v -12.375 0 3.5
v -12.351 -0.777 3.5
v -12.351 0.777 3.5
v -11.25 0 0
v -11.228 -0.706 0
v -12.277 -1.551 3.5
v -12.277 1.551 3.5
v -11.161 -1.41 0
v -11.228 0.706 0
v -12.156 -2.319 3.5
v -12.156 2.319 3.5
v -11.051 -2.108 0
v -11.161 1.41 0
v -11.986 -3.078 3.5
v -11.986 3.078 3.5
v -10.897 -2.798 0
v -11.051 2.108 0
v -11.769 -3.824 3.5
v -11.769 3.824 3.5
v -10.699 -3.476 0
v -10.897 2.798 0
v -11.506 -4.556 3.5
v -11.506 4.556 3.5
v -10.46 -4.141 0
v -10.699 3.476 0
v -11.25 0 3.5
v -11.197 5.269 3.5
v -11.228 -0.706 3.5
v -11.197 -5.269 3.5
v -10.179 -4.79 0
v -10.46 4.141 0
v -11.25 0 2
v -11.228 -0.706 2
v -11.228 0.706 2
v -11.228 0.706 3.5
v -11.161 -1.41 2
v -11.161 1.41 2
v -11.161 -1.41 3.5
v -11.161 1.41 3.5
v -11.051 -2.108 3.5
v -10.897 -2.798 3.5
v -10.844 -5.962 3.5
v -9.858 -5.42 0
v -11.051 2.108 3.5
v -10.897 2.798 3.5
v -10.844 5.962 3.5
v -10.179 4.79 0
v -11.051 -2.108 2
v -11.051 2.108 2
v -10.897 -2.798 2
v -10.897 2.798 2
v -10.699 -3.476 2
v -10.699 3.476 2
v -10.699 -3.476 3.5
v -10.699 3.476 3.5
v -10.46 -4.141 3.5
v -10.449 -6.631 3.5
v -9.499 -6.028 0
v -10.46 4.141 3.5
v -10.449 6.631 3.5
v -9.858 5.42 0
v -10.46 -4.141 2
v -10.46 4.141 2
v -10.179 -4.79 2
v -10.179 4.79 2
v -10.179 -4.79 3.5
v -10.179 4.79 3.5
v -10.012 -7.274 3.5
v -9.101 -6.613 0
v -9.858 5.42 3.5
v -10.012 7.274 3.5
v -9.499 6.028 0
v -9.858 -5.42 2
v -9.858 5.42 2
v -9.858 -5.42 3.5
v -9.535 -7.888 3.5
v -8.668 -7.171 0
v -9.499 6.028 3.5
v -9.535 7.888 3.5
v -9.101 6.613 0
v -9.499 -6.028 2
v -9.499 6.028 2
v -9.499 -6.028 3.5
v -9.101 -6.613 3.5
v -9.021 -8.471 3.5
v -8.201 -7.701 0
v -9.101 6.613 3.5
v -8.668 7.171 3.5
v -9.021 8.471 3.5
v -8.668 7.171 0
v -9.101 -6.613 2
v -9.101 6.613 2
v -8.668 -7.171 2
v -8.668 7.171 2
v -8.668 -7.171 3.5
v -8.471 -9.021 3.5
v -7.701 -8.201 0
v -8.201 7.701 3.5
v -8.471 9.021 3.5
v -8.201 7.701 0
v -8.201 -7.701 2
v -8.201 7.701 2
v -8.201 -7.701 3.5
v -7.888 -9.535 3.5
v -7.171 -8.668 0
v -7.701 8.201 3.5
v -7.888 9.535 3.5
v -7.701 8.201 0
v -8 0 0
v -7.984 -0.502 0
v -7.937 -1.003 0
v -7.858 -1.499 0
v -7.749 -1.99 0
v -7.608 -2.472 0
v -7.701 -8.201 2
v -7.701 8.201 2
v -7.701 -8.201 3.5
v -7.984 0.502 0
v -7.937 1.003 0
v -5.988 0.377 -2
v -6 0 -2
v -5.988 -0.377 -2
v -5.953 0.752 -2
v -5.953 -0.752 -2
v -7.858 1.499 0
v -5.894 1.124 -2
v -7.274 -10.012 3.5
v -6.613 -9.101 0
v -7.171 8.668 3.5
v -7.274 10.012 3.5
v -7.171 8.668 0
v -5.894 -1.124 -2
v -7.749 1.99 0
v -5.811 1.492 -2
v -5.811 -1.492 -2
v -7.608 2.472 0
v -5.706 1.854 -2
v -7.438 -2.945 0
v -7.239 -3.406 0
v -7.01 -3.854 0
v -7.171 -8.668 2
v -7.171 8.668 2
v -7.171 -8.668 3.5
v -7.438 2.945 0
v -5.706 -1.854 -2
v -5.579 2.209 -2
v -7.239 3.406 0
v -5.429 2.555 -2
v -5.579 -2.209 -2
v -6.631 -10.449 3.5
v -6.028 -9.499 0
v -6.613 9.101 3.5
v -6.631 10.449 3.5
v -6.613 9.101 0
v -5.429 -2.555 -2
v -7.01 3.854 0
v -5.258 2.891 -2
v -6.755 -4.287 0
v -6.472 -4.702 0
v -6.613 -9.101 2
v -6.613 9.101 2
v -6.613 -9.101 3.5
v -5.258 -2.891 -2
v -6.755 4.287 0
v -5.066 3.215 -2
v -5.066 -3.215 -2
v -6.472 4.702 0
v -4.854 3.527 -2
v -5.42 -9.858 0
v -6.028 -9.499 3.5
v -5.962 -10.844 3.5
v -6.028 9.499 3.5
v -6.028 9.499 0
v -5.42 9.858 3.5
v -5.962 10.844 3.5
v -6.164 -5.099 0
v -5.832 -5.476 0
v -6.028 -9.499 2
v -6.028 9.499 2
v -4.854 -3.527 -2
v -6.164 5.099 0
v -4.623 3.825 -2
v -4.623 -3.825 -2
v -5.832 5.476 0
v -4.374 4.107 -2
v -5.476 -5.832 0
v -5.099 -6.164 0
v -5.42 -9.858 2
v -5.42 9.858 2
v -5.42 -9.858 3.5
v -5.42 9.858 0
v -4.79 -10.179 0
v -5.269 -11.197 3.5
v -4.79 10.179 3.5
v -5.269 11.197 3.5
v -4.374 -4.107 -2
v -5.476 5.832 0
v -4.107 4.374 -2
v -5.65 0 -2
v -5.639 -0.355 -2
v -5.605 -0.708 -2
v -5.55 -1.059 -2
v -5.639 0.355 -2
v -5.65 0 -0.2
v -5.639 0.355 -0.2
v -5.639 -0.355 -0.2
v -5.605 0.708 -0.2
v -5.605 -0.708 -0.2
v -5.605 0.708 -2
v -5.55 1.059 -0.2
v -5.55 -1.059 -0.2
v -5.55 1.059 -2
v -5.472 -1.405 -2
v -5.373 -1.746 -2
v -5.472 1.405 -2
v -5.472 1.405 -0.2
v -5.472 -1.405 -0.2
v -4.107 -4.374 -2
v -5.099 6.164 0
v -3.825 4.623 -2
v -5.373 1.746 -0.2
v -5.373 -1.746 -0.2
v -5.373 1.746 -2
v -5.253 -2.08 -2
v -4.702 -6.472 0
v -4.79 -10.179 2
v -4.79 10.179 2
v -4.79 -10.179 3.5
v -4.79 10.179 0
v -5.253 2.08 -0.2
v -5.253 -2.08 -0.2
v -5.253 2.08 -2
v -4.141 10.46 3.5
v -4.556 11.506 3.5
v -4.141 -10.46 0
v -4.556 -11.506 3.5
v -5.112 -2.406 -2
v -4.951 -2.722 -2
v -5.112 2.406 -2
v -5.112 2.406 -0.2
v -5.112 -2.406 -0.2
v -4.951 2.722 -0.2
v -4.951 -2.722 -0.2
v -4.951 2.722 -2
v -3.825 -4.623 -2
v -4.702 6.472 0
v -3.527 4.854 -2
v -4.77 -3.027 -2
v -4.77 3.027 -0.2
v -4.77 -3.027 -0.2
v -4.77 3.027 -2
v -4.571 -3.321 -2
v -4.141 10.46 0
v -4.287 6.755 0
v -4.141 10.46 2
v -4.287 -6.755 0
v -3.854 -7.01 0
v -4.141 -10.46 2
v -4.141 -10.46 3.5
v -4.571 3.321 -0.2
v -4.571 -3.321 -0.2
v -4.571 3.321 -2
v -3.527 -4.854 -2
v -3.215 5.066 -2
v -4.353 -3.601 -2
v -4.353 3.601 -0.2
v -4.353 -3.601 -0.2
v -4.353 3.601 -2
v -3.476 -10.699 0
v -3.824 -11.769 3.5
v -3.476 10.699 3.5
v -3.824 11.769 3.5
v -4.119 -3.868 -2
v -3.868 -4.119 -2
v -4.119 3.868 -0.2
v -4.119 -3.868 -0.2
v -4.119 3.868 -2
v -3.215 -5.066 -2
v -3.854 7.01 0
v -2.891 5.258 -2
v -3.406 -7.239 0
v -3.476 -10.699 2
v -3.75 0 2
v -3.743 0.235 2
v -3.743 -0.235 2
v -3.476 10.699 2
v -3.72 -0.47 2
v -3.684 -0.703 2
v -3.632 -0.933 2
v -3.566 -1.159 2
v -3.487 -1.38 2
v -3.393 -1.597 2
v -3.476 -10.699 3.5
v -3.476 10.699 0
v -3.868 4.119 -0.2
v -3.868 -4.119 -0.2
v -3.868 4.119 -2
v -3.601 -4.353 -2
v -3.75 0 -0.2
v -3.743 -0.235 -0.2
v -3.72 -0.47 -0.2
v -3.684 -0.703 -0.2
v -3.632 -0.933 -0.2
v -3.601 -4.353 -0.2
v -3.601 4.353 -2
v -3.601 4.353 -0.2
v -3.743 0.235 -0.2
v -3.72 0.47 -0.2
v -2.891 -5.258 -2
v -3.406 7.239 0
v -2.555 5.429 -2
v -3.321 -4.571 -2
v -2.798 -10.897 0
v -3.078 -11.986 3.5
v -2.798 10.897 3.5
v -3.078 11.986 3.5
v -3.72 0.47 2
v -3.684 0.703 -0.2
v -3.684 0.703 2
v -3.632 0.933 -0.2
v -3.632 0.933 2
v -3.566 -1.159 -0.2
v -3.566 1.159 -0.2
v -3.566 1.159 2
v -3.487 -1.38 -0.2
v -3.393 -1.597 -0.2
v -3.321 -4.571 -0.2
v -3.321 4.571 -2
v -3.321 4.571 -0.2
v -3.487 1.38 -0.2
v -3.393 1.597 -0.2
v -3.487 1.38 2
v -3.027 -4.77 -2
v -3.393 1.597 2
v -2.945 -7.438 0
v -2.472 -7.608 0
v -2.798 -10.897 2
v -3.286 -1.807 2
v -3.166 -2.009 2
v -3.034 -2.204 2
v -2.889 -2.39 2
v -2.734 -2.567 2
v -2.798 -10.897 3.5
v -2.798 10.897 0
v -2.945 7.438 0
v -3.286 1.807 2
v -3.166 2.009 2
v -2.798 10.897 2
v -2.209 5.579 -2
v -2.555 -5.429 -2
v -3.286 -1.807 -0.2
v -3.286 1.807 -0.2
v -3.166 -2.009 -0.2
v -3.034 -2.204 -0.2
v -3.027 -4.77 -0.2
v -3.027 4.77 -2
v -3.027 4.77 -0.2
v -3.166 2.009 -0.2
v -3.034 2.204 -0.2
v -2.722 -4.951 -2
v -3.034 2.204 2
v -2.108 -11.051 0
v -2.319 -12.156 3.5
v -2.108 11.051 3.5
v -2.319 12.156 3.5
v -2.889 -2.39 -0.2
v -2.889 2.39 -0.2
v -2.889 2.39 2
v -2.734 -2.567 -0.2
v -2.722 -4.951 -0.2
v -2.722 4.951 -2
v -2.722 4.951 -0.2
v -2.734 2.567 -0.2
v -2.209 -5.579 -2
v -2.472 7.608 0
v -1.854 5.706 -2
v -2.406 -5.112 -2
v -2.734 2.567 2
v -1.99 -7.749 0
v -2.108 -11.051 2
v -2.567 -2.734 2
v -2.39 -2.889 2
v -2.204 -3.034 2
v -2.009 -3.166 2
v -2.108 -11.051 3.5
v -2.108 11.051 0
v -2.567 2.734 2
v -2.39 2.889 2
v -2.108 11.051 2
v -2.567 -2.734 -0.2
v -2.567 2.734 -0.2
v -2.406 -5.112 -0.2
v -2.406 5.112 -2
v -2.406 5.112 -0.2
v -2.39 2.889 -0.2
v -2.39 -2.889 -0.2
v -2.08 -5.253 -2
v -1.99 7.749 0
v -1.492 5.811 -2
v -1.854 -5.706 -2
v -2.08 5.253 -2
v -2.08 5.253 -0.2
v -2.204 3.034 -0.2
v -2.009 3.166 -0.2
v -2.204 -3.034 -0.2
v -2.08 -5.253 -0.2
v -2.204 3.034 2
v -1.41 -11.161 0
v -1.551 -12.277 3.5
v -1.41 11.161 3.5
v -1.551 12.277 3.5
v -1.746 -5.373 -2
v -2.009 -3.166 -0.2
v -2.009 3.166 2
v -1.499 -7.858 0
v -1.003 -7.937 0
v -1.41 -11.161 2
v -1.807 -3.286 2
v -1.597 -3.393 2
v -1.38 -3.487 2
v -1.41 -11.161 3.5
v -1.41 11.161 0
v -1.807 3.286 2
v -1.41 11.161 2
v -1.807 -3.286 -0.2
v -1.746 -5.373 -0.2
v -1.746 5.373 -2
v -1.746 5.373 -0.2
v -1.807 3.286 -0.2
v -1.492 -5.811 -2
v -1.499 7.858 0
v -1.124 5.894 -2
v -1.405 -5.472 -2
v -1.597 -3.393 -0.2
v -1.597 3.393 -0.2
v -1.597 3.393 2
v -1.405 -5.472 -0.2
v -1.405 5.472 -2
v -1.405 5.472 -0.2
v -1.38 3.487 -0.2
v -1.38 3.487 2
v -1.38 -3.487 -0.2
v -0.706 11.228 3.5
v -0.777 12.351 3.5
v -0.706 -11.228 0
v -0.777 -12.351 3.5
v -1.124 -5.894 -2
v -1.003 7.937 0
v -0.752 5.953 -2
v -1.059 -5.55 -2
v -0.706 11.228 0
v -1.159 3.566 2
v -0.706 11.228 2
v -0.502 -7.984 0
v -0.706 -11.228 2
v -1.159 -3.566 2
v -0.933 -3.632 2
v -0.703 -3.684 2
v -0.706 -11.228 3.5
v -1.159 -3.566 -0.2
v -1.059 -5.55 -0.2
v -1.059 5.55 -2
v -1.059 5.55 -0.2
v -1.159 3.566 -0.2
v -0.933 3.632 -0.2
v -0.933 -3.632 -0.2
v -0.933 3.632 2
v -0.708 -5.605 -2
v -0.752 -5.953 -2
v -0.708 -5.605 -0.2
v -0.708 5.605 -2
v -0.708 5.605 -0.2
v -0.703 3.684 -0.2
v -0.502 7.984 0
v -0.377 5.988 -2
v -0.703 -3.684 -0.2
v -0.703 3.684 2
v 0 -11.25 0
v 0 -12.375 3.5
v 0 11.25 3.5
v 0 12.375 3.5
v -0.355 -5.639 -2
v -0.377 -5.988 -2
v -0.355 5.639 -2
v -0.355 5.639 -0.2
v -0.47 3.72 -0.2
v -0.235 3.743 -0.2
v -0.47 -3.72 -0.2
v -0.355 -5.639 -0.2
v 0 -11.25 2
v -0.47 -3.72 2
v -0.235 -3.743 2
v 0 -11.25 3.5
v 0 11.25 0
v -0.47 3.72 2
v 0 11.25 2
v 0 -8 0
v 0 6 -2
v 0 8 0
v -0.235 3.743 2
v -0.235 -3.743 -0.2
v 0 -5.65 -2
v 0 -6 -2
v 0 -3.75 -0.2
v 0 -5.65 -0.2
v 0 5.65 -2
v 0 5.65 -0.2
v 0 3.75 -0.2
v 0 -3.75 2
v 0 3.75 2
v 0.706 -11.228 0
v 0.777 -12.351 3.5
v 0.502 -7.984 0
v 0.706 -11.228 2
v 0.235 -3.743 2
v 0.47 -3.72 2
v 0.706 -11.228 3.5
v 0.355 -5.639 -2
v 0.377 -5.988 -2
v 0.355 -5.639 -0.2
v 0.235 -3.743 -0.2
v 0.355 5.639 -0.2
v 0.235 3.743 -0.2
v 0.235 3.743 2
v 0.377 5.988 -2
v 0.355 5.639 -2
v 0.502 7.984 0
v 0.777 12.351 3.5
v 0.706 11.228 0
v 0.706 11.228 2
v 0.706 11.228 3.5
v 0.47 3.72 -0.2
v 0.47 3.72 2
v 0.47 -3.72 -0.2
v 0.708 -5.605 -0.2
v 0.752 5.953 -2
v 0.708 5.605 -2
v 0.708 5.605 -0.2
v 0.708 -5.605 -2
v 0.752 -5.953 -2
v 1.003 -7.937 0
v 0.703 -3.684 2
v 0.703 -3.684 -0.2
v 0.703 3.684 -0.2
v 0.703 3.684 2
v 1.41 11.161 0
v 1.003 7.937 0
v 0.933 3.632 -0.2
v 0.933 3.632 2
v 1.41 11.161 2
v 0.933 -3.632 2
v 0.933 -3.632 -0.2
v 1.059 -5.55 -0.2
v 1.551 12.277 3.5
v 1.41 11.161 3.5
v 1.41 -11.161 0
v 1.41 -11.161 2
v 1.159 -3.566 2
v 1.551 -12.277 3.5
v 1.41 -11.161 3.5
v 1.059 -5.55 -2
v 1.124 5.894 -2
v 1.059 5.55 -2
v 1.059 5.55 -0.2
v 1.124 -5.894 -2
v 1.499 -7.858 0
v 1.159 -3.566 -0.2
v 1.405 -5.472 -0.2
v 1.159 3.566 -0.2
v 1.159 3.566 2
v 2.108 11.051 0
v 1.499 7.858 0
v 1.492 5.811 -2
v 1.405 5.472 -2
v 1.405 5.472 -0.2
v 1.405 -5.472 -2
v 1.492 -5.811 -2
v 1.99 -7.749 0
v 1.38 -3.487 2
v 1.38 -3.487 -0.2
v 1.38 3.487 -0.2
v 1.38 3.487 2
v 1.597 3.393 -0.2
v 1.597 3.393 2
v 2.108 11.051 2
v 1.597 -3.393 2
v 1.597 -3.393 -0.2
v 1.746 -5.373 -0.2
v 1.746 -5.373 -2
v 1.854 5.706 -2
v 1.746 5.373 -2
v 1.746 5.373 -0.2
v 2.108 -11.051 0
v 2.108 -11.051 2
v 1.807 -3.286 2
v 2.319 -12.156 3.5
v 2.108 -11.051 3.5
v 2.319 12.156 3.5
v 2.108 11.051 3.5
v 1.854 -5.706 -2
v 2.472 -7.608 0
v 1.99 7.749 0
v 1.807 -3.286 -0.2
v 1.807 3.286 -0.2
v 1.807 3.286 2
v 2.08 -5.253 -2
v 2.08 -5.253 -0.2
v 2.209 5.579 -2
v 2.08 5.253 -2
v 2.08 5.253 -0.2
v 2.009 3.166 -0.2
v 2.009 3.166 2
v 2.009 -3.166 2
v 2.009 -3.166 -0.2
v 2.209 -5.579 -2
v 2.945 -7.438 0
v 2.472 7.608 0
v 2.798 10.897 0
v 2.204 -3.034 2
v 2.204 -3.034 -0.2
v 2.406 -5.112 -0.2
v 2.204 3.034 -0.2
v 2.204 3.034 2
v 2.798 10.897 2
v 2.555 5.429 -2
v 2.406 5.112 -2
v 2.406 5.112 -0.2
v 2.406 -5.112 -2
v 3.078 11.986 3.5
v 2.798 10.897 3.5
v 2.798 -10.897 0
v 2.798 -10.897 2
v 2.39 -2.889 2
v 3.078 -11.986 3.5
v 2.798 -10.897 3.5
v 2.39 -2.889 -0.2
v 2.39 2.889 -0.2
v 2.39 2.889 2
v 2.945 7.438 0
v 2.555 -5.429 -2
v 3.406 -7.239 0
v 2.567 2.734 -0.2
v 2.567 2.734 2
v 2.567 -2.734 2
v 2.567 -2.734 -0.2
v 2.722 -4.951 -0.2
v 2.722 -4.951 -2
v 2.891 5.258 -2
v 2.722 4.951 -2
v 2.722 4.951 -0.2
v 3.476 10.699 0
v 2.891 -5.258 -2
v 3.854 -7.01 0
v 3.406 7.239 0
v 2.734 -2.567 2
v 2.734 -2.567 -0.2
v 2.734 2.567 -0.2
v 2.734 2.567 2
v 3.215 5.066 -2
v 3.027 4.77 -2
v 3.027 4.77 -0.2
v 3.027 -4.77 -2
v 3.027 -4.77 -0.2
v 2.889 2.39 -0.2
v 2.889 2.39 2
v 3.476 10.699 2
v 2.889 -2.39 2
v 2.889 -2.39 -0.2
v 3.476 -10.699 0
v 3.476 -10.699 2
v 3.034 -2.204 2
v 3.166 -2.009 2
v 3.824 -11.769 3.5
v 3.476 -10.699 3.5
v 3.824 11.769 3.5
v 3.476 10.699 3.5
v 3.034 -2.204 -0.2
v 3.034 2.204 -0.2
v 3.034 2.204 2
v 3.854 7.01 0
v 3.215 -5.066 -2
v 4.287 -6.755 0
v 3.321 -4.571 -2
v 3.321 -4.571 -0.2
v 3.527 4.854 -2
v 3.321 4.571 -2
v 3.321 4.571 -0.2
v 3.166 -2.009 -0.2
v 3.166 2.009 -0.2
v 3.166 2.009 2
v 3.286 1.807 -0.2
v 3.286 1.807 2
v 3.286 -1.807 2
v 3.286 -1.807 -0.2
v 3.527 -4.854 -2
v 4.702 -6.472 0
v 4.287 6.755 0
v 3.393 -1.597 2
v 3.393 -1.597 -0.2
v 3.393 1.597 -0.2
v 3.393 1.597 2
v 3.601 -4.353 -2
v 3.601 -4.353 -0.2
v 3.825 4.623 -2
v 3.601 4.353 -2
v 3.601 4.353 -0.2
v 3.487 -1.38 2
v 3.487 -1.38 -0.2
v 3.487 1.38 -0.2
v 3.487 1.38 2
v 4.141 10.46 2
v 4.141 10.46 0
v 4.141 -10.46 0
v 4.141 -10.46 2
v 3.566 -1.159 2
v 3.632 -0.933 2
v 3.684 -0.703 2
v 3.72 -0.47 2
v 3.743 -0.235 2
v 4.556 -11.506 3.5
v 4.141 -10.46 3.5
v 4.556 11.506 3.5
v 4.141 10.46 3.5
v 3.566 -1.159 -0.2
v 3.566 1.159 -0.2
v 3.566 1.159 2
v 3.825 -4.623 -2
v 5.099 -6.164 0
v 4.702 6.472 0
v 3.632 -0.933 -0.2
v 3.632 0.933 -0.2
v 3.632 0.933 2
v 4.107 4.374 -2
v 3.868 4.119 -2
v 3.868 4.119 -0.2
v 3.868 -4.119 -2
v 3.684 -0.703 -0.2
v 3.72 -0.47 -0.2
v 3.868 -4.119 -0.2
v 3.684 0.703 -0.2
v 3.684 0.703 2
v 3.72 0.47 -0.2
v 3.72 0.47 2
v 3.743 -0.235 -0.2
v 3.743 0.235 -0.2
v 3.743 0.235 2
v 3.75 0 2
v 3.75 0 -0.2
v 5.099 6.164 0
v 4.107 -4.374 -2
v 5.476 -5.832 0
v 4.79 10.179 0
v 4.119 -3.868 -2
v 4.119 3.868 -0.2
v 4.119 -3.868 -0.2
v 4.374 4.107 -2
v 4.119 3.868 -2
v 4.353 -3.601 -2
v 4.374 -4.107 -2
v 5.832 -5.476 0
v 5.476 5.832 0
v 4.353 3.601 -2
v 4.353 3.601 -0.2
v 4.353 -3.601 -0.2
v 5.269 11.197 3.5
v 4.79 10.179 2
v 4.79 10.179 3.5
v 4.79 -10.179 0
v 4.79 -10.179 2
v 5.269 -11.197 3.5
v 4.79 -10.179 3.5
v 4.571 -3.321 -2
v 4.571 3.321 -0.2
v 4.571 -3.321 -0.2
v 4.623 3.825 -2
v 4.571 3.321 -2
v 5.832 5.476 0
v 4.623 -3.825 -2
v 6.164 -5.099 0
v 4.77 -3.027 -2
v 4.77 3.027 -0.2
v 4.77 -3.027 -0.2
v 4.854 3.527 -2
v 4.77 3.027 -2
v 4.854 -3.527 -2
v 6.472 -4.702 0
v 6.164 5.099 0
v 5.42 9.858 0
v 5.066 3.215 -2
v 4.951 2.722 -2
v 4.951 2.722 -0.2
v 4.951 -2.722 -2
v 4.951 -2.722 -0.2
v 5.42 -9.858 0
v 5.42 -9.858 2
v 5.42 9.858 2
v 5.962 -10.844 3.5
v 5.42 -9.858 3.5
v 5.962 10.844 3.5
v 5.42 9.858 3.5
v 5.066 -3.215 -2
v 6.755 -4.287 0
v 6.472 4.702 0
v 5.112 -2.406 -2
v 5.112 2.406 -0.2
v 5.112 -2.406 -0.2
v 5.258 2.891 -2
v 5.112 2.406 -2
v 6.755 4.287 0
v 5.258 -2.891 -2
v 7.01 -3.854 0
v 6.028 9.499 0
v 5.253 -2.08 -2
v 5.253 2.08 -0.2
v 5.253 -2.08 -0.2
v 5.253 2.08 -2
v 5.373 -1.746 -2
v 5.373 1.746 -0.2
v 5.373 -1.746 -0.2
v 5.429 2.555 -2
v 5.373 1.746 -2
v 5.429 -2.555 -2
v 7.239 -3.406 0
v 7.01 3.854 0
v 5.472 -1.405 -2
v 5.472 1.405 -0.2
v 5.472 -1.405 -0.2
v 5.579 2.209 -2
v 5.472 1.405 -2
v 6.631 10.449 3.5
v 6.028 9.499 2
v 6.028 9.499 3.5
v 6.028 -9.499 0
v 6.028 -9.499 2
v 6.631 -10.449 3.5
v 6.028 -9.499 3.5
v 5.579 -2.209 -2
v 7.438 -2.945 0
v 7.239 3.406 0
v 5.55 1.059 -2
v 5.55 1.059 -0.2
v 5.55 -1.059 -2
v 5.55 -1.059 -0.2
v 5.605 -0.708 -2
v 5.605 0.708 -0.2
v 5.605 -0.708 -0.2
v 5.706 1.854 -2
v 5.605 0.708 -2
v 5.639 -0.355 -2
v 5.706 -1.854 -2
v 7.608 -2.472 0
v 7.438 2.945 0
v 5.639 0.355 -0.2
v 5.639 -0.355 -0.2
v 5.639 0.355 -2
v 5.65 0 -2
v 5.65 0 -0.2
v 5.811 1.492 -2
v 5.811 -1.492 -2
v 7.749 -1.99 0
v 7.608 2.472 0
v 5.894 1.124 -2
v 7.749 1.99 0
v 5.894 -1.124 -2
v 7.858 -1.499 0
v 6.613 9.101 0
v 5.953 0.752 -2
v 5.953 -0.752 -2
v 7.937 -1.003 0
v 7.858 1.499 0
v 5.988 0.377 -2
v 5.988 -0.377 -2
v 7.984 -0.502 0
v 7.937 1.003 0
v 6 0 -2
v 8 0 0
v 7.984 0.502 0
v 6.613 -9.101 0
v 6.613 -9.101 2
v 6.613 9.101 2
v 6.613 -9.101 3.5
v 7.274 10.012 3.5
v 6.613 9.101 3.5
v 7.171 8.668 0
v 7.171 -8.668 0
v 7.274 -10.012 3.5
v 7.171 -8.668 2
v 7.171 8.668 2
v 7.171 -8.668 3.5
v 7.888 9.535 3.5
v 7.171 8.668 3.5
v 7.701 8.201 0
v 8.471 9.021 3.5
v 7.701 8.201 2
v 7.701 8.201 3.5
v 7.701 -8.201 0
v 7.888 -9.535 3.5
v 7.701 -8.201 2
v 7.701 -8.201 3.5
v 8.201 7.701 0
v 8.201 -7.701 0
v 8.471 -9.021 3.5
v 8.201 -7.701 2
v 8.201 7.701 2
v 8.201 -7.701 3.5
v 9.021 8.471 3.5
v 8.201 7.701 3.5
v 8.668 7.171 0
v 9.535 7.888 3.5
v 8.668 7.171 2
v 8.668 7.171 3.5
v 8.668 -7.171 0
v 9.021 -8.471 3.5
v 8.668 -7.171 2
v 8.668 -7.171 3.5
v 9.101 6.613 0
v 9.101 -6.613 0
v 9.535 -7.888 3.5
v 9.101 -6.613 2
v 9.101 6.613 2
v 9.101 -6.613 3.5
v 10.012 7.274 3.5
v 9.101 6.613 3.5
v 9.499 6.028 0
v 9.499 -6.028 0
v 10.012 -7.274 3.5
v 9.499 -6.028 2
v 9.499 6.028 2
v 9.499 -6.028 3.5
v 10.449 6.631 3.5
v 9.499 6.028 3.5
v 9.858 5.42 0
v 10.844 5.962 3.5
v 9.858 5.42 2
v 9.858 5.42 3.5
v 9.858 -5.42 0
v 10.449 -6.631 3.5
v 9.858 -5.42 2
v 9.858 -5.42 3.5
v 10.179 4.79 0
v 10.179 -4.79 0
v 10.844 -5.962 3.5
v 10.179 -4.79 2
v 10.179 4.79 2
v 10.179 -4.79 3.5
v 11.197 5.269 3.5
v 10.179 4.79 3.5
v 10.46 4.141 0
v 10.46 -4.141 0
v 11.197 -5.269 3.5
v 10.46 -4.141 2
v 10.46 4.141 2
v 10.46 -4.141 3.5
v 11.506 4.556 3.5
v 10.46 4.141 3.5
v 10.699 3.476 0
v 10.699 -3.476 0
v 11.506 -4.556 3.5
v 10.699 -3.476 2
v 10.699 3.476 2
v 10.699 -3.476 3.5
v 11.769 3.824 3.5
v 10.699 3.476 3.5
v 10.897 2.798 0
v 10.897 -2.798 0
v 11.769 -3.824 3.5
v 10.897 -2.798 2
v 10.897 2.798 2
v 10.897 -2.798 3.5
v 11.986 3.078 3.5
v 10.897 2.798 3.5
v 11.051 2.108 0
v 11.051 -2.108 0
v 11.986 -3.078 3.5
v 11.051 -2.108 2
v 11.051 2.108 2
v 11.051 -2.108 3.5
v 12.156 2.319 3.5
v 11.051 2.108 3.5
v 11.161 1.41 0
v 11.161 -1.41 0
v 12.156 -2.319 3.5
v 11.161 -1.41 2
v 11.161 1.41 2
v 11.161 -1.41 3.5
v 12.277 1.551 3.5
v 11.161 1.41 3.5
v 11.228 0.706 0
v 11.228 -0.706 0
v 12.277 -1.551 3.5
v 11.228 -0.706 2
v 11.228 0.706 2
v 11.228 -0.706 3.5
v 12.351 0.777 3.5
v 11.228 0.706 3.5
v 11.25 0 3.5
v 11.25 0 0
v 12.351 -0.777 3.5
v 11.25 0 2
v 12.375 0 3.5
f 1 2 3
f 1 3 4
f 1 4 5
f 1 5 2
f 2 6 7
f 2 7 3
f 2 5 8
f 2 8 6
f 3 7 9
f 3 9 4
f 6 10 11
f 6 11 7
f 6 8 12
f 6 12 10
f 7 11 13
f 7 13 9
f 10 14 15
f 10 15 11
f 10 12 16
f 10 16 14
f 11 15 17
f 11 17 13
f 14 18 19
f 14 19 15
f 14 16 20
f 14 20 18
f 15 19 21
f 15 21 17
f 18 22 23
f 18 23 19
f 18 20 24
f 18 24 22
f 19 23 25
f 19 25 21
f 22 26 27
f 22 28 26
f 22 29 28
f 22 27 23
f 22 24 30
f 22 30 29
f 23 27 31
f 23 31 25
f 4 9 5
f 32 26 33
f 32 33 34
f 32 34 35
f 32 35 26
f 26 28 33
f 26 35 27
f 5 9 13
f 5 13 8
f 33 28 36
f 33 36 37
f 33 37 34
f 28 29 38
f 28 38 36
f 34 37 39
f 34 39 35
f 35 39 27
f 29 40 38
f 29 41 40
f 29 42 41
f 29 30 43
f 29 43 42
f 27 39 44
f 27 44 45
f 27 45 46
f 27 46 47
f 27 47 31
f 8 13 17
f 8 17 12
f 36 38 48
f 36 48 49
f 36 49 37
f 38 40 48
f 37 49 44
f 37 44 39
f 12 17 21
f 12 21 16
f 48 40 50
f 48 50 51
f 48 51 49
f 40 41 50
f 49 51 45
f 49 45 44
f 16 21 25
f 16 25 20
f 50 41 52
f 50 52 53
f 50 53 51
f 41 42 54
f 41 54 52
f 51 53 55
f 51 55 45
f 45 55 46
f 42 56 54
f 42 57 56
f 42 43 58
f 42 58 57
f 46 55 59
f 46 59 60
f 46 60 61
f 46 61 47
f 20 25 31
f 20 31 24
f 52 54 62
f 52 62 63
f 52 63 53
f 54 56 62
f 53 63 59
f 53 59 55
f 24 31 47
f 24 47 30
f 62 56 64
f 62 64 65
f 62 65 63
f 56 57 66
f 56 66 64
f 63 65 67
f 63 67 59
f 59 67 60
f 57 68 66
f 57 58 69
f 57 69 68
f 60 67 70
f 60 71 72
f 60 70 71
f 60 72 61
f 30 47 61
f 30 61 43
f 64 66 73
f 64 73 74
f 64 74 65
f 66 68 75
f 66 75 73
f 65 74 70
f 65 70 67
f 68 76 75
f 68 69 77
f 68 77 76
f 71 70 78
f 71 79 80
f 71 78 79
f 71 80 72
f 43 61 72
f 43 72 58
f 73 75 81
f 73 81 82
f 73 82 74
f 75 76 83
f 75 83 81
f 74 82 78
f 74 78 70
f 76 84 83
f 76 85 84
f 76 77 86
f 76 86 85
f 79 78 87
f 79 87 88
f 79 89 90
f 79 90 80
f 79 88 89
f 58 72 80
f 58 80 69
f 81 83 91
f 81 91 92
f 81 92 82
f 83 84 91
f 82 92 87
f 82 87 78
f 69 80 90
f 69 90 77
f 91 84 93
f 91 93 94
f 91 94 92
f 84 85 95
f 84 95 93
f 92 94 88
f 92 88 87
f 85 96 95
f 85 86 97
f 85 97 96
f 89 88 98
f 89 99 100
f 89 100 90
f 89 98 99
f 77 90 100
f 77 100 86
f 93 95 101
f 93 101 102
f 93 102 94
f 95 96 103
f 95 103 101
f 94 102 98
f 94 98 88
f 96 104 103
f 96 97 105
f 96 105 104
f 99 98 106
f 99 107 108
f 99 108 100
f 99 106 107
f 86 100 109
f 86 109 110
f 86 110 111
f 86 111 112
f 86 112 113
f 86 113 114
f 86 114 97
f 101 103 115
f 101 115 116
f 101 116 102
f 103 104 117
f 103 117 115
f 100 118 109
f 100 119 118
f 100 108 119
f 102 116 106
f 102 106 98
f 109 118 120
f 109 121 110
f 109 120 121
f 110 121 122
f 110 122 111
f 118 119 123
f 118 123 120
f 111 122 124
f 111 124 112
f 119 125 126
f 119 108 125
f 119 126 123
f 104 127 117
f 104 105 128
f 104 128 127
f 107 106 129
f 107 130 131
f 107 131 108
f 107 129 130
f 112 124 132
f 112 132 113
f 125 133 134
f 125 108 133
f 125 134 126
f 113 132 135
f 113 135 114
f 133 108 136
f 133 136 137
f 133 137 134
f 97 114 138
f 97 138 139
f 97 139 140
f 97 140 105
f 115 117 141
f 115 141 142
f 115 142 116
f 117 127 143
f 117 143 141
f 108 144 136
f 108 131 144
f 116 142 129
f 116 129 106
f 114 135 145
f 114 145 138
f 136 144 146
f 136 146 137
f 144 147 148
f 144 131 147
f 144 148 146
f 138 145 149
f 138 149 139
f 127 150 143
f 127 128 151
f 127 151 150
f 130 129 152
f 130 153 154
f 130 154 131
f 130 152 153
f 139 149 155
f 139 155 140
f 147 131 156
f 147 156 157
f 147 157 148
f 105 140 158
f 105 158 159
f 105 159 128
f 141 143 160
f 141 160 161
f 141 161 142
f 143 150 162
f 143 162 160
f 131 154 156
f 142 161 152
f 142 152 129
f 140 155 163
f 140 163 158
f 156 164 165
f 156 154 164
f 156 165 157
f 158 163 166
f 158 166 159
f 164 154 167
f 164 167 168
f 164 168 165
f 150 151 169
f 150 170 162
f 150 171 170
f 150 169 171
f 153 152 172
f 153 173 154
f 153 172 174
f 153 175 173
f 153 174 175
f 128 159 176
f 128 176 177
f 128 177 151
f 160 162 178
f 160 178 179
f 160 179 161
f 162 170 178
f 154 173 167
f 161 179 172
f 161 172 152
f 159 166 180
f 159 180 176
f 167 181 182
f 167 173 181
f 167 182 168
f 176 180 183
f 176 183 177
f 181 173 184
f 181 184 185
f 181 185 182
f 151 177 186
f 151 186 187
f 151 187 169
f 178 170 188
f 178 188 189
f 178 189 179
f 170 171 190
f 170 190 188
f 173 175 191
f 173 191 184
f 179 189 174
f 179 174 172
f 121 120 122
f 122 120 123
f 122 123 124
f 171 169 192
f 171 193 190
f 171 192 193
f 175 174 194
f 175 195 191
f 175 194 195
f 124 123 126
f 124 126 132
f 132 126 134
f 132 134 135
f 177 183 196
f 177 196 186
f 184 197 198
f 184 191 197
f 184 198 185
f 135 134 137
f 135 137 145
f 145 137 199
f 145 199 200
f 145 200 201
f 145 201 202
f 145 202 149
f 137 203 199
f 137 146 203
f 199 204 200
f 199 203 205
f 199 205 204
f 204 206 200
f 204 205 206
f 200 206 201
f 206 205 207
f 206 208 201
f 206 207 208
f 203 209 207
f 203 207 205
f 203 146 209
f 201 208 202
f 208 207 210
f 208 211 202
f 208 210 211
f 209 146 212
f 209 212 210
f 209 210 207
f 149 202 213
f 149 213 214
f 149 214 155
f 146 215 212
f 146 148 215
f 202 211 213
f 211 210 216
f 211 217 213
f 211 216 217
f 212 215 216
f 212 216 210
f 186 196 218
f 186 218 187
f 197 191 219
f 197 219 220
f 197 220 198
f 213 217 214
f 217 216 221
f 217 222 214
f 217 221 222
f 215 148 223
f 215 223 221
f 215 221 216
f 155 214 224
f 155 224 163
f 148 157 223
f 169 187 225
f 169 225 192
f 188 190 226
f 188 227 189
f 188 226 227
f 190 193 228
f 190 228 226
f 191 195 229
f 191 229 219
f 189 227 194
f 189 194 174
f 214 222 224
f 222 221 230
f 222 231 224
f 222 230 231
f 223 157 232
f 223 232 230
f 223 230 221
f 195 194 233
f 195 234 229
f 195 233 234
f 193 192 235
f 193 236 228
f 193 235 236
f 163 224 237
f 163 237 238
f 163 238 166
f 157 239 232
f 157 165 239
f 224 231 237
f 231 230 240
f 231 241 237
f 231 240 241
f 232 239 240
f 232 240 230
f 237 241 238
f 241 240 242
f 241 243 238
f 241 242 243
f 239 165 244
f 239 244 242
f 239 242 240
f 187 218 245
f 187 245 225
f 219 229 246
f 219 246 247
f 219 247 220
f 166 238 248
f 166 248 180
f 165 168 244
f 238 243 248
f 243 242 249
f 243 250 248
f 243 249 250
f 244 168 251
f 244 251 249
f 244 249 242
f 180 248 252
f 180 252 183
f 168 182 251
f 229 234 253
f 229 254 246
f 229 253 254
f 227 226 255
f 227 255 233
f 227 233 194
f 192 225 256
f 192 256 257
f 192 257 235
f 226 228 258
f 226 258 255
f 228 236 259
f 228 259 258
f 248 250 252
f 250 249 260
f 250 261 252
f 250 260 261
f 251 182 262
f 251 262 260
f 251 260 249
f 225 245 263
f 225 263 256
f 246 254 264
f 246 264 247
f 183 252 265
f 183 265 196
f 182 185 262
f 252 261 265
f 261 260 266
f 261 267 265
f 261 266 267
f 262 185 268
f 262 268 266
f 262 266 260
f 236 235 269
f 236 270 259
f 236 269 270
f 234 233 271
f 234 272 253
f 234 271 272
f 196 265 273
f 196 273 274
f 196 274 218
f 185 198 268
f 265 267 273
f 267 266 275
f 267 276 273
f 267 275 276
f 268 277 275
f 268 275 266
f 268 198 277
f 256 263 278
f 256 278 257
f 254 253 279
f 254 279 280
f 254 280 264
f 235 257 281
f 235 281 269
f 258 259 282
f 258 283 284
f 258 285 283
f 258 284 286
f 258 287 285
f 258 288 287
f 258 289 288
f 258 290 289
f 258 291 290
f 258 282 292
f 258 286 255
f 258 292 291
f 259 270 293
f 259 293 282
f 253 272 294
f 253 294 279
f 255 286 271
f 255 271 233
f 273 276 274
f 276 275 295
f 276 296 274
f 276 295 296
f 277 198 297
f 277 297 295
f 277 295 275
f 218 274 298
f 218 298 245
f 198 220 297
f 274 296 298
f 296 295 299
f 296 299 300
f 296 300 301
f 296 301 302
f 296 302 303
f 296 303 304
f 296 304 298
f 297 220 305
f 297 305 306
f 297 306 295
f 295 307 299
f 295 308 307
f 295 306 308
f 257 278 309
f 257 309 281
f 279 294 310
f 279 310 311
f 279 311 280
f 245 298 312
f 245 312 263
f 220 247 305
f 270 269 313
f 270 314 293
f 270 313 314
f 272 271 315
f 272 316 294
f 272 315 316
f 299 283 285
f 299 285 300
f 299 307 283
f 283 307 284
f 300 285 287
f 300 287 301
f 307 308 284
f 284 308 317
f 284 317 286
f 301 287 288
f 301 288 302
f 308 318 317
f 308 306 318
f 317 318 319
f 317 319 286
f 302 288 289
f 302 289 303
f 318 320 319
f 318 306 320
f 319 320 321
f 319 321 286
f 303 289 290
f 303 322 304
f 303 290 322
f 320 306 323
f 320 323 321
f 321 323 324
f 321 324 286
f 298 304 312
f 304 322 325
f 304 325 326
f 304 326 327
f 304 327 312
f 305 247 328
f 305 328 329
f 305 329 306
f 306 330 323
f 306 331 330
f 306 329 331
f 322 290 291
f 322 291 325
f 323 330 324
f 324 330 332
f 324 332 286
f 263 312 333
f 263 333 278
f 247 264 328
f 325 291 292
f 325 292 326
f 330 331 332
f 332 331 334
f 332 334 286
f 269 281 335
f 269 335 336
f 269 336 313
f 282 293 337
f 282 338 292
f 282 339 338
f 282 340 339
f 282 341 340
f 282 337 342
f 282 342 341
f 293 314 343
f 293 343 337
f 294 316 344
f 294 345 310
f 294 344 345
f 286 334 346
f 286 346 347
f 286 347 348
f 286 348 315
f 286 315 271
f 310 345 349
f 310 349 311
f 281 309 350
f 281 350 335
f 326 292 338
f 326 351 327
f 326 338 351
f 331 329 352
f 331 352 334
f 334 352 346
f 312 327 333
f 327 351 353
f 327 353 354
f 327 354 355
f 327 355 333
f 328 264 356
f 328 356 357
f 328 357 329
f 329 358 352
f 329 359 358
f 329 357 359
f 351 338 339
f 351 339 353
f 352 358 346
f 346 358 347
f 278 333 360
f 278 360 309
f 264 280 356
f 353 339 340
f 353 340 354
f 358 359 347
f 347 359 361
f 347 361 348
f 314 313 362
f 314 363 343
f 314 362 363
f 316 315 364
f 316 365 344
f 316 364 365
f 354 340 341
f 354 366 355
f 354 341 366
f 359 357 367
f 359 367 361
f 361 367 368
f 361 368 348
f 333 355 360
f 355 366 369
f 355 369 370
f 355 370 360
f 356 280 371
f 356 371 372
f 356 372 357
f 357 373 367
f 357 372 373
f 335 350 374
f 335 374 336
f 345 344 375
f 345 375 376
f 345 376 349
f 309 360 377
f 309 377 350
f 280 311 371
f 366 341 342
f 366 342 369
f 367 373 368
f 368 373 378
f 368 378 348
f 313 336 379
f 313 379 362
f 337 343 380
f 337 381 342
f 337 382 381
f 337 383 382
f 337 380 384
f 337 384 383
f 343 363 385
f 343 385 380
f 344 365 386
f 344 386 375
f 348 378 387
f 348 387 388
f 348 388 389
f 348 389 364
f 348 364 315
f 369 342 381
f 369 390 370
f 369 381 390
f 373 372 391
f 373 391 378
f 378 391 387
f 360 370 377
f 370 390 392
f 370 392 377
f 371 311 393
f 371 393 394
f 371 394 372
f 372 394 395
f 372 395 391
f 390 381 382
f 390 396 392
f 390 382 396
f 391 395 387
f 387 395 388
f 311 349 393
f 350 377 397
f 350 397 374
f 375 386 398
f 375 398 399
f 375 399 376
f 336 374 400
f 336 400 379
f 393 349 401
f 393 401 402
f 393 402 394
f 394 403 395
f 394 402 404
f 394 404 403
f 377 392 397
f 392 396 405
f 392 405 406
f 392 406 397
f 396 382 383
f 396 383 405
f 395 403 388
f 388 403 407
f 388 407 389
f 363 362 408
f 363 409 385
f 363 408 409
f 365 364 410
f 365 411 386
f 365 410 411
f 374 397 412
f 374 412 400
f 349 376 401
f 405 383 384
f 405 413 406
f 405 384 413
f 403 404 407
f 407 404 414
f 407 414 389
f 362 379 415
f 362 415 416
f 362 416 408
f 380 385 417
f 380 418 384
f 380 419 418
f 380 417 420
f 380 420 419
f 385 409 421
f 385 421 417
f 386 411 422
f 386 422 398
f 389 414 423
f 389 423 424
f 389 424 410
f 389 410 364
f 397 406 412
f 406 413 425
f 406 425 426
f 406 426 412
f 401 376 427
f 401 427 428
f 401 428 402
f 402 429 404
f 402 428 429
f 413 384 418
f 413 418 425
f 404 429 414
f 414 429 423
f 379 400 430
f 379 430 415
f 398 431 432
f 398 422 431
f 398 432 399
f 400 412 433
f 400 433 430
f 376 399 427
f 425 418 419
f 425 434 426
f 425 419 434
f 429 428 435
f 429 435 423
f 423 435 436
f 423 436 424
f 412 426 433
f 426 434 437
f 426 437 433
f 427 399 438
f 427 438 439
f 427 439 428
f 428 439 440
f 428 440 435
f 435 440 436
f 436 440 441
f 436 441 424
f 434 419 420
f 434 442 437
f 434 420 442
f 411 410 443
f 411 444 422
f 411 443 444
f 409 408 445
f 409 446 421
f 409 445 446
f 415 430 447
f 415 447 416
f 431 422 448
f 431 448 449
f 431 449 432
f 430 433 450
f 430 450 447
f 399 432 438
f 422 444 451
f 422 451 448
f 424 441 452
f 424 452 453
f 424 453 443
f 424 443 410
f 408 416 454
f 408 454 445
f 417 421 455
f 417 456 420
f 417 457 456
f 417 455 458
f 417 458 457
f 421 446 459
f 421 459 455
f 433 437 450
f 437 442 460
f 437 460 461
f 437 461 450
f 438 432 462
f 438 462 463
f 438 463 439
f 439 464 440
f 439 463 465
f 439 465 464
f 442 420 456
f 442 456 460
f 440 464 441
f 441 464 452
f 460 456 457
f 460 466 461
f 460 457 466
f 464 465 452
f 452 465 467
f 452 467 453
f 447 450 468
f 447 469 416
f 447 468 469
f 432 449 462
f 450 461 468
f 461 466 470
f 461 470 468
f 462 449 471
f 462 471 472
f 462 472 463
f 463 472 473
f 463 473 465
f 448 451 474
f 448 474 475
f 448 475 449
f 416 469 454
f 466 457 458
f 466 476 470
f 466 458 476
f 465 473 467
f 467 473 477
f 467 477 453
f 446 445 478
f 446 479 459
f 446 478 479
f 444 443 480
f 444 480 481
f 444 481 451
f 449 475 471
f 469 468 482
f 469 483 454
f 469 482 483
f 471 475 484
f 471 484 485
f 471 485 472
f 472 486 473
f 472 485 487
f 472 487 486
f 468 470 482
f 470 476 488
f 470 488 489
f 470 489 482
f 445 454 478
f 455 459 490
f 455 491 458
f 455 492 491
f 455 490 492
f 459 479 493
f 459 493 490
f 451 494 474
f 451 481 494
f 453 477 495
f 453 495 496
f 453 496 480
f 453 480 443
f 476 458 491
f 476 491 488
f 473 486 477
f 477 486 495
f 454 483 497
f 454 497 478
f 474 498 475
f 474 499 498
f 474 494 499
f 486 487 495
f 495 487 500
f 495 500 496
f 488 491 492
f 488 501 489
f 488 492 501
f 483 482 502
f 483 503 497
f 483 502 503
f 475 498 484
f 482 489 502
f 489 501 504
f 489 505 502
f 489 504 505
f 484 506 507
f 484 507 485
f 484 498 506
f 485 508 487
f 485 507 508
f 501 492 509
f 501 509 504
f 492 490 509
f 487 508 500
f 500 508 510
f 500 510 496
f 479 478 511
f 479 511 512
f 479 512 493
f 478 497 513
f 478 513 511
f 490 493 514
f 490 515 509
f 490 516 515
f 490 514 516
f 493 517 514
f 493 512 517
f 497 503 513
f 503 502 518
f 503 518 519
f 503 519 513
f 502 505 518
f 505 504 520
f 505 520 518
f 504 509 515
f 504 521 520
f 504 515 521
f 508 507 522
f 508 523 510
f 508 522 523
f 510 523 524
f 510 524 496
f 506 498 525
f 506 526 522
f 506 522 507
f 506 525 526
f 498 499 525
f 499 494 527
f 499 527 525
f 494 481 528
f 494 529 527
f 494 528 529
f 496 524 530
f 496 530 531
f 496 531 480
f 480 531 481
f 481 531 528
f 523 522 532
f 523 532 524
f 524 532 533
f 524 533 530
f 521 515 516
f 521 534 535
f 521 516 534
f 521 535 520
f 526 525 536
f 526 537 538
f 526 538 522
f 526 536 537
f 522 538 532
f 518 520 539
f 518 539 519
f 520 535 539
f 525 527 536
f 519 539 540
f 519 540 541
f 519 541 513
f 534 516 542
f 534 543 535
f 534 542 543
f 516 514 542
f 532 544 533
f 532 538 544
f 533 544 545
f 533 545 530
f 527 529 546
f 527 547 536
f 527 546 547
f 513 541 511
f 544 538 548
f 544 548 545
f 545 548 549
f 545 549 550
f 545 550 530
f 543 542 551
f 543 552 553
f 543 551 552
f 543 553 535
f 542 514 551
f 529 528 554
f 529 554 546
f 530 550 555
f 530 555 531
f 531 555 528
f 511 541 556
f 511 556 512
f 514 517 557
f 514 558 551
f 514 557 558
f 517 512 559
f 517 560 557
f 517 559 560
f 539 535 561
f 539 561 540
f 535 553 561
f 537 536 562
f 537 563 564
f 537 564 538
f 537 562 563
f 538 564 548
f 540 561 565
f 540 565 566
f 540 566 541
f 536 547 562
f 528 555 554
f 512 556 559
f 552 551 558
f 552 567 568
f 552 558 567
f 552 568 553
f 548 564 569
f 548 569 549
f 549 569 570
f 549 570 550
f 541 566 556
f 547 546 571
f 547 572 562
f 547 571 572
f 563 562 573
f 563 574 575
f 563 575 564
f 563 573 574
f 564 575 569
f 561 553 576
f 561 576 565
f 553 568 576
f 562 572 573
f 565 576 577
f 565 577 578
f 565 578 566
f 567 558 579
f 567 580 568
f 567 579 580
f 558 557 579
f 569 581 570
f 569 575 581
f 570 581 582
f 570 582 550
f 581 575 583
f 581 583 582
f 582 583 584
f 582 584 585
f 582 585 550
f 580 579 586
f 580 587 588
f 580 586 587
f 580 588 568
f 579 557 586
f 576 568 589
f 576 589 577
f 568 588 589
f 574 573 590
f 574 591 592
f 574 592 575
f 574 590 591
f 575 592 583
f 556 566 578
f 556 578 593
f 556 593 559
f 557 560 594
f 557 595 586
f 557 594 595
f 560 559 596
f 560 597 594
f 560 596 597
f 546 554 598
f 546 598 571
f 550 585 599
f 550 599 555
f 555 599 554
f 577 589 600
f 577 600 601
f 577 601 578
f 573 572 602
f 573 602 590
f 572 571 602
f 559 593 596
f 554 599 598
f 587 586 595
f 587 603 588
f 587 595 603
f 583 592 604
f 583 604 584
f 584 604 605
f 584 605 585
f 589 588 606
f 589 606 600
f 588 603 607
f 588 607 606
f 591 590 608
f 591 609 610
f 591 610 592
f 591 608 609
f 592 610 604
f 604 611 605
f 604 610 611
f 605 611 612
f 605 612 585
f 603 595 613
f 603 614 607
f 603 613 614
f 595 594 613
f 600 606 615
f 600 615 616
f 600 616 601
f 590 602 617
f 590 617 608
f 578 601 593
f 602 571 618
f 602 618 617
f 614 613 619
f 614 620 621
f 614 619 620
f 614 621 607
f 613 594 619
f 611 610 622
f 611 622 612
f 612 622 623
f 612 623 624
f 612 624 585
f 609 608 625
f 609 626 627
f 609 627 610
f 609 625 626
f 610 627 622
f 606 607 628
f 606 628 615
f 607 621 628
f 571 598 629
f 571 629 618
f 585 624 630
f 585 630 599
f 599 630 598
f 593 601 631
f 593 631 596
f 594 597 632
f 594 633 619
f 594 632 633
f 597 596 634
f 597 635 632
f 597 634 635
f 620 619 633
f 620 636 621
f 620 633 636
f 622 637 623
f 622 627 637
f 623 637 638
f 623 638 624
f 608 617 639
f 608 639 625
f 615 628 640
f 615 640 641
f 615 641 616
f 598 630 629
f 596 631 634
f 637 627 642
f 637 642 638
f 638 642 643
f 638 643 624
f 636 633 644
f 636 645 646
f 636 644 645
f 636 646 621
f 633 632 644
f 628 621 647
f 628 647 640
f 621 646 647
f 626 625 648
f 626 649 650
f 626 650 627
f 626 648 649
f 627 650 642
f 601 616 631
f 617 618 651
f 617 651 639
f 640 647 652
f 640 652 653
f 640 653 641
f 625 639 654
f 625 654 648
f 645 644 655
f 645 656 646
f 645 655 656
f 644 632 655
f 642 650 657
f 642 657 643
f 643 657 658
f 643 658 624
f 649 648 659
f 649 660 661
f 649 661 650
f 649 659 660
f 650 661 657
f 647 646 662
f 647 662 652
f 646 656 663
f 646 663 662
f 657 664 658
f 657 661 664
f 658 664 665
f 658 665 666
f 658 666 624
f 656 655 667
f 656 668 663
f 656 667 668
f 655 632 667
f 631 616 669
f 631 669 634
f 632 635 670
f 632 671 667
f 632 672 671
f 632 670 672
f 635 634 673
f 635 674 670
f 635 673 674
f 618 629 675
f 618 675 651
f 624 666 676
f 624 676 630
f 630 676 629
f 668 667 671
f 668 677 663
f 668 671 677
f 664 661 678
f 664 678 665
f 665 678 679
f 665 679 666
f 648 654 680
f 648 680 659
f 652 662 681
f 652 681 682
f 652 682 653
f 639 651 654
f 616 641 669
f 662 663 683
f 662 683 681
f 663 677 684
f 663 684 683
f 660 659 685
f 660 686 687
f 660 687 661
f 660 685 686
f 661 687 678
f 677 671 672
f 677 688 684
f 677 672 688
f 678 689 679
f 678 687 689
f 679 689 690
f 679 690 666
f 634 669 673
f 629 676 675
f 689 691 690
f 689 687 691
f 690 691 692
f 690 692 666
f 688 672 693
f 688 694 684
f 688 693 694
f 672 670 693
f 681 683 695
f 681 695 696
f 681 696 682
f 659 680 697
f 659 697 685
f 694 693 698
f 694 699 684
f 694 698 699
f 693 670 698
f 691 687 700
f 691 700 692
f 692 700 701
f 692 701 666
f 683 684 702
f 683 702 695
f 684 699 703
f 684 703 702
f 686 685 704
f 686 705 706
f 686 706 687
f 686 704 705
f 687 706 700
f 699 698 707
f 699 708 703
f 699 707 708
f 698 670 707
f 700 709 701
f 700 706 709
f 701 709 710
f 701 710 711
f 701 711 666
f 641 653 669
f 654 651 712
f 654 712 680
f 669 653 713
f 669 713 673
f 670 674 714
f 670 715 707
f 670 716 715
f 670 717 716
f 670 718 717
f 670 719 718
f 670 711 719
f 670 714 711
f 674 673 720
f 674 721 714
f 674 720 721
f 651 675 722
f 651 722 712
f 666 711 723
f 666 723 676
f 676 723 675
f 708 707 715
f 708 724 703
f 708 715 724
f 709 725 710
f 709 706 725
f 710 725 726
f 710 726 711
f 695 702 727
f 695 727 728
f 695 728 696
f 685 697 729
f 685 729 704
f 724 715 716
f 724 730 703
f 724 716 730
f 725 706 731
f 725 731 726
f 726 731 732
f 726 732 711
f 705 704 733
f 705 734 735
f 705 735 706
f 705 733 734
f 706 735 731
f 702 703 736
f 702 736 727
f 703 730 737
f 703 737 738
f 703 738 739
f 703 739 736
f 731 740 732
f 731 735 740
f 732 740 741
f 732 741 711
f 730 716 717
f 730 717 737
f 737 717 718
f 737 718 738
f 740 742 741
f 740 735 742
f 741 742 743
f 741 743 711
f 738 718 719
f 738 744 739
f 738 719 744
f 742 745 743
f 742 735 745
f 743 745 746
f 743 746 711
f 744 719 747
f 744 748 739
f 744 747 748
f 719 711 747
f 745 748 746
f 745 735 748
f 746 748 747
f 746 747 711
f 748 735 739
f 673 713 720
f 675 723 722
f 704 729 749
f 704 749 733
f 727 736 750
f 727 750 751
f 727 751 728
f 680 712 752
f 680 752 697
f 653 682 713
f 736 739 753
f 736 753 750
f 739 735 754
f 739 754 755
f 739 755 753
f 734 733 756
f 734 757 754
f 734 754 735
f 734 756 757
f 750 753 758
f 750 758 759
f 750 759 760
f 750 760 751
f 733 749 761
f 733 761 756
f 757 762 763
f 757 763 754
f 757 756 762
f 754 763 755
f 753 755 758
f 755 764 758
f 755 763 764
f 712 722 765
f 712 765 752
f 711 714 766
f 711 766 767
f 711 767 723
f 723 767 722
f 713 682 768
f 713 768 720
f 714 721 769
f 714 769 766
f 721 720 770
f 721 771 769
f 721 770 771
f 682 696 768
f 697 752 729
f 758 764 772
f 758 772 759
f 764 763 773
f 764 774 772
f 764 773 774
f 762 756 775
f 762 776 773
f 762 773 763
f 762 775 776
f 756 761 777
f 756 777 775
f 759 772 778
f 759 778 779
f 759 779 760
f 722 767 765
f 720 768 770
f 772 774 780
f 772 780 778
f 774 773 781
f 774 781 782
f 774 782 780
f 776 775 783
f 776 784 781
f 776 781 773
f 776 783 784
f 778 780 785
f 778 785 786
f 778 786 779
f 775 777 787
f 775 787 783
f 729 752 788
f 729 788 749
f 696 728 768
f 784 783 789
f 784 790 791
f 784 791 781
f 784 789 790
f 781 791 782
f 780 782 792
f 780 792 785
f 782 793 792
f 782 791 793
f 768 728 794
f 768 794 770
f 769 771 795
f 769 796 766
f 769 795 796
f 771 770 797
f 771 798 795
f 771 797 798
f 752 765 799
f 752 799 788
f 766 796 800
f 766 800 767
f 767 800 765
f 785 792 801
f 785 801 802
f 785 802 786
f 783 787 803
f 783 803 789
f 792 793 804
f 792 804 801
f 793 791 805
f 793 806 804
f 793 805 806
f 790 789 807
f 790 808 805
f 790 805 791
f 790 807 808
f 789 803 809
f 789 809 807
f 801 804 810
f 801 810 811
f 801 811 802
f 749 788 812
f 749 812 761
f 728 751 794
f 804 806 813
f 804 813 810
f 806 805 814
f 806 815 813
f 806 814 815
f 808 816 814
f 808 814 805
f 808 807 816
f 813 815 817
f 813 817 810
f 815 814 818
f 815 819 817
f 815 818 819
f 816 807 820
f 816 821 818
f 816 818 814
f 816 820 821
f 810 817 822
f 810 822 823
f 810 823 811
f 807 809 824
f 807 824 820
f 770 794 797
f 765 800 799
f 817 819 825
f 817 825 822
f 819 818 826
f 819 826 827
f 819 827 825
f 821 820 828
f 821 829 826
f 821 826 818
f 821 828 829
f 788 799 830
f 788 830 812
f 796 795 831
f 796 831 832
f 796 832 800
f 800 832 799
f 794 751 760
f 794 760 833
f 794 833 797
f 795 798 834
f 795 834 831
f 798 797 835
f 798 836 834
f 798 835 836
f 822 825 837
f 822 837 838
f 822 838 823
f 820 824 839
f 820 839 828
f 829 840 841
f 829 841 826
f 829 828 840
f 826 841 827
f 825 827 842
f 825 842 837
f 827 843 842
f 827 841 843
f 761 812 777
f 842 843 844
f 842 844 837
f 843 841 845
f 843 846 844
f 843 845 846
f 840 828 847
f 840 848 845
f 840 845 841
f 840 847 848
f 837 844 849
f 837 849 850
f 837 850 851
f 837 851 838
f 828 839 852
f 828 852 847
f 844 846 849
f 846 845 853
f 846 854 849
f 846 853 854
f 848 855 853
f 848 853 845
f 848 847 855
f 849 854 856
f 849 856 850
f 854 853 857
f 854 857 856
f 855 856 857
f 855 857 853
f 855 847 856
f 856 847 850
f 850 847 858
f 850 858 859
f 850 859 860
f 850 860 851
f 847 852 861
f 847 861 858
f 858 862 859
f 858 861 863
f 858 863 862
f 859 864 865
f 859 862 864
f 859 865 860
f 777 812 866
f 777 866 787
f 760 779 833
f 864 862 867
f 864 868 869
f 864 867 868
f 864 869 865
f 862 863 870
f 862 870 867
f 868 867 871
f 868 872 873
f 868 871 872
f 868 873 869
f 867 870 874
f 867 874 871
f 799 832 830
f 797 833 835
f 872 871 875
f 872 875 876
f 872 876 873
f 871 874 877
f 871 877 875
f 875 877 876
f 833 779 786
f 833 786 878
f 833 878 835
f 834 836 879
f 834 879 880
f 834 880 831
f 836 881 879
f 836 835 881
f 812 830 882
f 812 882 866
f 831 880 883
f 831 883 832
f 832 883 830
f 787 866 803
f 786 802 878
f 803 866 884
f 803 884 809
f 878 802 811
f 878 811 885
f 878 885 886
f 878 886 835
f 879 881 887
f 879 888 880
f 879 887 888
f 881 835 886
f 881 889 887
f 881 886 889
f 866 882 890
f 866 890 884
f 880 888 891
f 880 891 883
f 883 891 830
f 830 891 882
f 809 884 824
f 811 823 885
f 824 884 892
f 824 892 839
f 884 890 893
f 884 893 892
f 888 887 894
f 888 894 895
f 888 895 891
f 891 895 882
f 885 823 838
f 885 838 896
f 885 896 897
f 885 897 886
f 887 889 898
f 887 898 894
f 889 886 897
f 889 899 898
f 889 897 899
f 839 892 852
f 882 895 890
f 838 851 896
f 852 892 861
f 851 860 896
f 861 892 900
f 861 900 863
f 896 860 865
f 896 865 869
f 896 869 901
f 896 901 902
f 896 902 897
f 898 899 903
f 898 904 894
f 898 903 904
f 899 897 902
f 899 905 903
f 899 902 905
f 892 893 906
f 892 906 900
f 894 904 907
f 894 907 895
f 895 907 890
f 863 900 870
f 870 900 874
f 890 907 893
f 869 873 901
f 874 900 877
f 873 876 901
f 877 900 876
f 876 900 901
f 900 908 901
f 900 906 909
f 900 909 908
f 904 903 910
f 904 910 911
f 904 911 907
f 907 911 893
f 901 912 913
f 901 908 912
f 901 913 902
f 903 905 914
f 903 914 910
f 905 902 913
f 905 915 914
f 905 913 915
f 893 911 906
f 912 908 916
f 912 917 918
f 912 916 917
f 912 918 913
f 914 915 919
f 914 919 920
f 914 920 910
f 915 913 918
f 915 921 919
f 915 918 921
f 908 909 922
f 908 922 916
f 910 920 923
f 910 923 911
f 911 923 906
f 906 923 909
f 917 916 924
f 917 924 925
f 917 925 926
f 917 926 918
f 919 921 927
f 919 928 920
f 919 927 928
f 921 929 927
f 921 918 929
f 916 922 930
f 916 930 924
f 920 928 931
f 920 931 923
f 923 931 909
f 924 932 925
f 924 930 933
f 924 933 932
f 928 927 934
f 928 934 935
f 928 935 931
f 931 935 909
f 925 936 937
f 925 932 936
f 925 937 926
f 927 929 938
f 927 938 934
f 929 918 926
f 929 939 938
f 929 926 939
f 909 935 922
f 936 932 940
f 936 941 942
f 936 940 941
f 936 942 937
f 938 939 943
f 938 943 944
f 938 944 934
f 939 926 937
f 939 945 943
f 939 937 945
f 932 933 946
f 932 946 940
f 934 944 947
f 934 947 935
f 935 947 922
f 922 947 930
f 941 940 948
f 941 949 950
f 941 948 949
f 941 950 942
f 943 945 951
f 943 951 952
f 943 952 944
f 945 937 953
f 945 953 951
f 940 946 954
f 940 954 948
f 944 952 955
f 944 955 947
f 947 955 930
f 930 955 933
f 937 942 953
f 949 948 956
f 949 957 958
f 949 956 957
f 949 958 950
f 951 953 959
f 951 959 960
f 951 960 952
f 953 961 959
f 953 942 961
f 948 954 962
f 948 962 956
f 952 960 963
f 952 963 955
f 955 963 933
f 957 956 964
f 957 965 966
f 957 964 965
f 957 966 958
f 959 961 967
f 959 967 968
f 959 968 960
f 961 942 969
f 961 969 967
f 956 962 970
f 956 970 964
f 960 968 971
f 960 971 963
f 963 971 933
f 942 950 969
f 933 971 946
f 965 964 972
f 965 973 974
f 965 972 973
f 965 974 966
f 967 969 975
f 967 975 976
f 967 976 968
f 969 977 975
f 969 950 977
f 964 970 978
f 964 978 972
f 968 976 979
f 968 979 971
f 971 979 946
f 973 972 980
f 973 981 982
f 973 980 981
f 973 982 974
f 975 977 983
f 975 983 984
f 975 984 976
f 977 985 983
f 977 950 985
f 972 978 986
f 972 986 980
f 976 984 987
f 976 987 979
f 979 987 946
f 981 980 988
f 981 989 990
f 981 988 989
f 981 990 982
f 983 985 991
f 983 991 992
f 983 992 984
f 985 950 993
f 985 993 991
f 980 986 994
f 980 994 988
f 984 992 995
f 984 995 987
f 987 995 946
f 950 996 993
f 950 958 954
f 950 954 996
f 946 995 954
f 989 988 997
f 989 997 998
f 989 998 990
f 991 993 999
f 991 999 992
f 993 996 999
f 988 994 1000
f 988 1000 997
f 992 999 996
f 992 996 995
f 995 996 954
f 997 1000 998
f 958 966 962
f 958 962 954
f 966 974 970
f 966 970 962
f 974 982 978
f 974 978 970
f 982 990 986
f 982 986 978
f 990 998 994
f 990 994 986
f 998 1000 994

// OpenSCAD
$fn = 100; 

difference () {
    union() {   
        rotate([0, 0, 0]) translate([0, 0, 0]) linear_extrude(height = 3.5, scale=1.1) circle(d = 22.5);
        rotate([0, 0, 0]) translate([0, 0, -2]) linear_extrude(height = 3, scale=1.5) circle(d = 12);
    }
    union() {
        rotate([0, 0, 0]) translate([0, 0, 2]) linear_extrude(height = 3) circle(d = 22.5);
        rotate([0, 0, 0]) translate([0, 0, -1]) linear_extrude(height = 5) circle(d = 7.5);
        rotate([0, 0, 0]) translate([0, 0, -4.2]) linear_extrude(height = 4) circle(d = 11.3);
    }
}
